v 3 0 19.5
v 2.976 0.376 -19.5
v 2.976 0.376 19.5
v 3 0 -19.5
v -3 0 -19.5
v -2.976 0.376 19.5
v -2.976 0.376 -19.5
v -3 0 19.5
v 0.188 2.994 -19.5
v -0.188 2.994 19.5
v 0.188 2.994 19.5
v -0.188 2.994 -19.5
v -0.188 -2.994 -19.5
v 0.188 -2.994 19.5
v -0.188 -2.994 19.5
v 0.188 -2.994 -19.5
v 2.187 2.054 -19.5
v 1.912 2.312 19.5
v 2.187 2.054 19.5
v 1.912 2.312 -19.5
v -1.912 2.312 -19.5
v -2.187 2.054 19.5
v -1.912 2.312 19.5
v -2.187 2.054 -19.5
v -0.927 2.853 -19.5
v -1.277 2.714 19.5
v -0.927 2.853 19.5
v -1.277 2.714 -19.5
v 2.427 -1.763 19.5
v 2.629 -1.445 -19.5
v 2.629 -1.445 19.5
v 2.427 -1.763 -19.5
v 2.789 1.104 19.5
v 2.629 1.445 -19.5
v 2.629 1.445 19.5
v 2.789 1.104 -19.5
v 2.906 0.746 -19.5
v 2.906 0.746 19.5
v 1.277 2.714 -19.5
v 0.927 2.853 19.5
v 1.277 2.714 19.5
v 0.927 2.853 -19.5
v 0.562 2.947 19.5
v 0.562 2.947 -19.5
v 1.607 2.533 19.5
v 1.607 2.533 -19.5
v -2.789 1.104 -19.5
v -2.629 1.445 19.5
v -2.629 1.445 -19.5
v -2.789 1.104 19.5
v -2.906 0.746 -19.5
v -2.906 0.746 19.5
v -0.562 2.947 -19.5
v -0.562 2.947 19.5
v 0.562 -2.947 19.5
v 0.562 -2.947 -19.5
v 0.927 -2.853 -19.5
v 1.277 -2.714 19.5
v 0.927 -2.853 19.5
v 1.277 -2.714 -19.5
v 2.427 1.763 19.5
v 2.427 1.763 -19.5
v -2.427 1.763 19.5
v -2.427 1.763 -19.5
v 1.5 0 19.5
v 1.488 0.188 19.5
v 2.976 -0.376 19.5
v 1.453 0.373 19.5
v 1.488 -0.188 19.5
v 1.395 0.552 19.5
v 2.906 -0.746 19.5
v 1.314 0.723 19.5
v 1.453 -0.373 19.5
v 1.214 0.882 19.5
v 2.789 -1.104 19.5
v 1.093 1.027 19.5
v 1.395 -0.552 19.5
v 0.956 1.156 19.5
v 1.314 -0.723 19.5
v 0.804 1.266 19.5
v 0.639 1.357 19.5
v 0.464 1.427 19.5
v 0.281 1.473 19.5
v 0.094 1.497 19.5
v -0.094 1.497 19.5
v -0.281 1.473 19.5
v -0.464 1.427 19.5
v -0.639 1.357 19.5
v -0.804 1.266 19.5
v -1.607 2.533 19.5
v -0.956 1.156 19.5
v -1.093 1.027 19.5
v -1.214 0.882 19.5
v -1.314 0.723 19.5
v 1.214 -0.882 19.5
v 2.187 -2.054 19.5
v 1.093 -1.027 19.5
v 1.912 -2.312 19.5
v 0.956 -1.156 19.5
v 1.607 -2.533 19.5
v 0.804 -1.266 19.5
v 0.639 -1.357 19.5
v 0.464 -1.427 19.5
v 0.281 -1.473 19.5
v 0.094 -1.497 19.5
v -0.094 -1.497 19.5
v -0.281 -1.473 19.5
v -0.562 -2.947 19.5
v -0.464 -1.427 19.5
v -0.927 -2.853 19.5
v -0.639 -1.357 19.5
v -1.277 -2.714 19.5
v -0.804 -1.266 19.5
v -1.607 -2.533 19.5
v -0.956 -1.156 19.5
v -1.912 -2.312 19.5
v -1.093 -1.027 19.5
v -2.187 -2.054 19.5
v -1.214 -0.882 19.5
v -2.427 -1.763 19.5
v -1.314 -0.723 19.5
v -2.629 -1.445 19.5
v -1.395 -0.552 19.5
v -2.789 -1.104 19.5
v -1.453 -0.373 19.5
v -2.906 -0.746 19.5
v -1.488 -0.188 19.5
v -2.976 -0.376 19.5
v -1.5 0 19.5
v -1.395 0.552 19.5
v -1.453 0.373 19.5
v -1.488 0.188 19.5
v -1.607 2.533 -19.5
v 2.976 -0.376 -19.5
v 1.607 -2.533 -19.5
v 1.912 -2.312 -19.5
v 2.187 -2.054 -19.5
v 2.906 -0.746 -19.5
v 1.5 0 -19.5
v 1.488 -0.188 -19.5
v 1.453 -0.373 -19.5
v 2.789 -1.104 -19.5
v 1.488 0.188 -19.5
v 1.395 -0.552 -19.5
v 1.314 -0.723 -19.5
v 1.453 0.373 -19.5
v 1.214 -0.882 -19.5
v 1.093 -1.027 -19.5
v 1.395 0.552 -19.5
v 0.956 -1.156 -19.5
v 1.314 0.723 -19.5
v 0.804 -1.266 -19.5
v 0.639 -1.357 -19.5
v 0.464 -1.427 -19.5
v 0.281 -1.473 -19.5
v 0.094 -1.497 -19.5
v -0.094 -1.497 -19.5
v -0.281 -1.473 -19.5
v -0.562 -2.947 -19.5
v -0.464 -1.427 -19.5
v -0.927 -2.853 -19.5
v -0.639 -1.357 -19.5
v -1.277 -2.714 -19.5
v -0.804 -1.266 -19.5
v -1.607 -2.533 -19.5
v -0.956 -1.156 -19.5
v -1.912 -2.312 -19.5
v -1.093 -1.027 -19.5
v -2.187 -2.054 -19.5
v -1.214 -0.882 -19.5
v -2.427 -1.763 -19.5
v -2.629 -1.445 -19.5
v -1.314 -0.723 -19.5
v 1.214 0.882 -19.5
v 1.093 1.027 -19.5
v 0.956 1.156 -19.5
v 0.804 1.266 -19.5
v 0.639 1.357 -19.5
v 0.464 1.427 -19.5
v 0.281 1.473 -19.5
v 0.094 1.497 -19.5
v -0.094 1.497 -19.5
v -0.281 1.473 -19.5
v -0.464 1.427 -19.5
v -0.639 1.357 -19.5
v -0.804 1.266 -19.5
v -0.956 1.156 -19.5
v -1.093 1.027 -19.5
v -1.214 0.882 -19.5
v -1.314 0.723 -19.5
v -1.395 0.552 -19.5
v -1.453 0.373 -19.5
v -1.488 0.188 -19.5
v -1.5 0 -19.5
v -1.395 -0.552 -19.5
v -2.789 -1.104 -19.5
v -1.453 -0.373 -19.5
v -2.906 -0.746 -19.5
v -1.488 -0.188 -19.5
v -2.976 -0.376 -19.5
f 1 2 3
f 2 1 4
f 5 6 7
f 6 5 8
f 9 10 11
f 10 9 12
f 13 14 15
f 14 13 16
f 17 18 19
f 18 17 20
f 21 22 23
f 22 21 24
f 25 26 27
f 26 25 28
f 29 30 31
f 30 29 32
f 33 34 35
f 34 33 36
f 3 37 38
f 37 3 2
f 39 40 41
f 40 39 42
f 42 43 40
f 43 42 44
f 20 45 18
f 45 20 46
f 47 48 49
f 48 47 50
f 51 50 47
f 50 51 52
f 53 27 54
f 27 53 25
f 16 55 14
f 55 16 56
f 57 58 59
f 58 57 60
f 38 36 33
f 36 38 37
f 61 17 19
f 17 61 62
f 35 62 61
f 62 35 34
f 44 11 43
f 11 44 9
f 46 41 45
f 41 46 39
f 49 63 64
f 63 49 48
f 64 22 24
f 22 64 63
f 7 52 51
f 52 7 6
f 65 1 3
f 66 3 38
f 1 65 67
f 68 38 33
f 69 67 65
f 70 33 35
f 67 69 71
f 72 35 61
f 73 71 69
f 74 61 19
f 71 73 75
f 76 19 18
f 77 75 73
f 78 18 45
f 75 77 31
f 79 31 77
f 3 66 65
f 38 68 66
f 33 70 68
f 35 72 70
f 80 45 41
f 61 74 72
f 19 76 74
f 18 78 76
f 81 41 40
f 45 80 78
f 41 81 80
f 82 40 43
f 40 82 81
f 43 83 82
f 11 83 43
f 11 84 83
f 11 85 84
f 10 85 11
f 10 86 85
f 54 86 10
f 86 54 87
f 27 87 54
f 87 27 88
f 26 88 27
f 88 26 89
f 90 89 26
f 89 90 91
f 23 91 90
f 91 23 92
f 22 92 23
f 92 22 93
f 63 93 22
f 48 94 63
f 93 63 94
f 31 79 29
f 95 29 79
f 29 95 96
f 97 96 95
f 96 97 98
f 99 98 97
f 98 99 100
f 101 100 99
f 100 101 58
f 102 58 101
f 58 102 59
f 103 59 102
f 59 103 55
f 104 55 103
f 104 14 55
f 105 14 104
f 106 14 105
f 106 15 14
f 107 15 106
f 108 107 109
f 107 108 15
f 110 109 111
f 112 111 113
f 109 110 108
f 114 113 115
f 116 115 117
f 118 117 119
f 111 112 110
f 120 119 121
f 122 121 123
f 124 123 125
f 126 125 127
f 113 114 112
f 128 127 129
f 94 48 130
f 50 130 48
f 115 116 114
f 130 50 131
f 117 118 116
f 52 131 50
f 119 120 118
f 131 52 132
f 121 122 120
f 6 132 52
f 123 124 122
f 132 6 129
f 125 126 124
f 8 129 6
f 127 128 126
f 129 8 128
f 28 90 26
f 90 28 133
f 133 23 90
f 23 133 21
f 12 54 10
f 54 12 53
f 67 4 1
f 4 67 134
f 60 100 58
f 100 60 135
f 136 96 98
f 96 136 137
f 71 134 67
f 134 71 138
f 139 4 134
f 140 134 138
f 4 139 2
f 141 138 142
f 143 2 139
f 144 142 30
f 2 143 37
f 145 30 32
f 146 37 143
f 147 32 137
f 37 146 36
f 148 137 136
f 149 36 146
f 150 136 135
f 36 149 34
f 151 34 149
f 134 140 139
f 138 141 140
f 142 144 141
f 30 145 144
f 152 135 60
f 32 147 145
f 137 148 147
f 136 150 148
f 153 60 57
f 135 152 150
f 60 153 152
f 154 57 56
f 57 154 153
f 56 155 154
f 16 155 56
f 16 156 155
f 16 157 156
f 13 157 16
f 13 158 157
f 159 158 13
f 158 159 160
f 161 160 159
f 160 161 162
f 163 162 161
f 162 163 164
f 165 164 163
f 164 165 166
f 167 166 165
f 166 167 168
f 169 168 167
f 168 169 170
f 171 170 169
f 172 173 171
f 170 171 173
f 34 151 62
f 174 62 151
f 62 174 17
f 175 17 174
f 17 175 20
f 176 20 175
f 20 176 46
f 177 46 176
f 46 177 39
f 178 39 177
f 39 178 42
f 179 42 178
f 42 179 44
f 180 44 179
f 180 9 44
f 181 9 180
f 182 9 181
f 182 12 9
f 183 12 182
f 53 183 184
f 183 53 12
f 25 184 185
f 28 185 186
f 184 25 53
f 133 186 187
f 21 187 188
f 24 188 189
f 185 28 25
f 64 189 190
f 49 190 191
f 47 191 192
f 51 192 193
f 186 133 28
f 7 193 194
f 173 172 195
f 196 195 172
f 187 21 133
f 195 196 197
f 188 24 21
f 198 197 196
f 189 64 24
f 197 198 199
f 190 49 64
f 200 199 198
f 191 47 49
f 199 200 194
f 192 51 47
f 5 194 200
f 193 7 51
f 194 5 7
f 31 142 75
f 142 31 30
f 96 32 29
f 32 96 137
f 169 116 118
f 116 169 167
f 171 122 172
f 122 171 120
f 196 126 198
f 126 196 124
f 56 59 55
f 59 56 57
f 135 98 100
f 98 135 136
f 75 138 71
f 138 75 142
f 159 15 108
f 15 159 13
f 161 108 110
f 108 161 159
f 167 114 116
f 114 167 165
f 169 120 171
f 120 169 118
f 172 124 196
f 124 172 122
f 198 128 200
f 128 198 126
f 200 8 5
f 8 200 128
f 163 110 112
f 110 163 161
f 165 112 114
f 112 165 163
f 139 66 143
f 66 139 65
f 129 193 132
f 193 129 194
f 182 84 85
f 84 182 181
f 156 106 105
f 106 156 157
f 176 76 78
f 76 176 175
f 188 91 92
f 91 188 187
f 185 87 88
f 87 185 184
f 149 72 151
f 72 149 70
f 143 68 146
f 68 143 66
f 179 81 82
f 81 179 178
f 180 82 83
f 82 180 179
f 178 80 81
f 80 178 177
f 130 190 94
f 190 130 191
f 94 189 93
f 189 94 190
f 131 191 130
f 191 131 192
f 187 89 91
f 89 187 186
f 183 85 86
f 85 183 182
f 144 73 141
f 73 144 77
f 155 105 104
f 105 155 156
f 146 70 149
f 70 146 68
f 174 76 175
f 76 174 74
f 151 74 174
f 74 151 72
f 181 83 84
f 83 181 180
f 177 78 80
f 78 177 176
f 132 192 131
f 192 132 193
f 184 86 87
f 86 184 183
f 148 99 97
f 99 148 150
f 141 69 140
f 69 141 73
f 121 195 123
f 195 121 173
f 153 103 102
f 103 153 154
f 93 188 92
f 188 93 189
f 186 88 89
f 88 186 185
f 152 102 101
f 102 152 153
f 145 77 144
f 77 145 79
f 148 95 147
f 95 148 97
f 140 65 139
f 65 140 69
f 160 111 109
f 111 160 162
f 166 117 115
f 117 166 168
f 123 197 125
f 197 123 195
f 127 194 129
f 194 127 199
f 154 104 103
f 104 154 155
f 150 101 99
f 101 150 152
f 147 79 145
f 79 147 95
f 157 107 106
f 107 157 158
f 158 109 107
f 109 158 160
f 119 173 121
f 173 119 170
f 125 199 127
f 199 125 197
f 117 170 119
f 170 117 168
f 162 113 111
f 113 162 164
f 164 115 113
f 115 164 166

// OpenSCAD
$fn = 50;


difference() {
	union() {
		translate(v = [0, 0, -19.5000000000]) {
			cylinder(h = 39, r = 3.0000000000);
		}
	}
	union() {
		translate(v = [0, 0, -100.0000000000]) {
			cylinder(h = 200, r = 1.5000000000);
		}
	}
}
